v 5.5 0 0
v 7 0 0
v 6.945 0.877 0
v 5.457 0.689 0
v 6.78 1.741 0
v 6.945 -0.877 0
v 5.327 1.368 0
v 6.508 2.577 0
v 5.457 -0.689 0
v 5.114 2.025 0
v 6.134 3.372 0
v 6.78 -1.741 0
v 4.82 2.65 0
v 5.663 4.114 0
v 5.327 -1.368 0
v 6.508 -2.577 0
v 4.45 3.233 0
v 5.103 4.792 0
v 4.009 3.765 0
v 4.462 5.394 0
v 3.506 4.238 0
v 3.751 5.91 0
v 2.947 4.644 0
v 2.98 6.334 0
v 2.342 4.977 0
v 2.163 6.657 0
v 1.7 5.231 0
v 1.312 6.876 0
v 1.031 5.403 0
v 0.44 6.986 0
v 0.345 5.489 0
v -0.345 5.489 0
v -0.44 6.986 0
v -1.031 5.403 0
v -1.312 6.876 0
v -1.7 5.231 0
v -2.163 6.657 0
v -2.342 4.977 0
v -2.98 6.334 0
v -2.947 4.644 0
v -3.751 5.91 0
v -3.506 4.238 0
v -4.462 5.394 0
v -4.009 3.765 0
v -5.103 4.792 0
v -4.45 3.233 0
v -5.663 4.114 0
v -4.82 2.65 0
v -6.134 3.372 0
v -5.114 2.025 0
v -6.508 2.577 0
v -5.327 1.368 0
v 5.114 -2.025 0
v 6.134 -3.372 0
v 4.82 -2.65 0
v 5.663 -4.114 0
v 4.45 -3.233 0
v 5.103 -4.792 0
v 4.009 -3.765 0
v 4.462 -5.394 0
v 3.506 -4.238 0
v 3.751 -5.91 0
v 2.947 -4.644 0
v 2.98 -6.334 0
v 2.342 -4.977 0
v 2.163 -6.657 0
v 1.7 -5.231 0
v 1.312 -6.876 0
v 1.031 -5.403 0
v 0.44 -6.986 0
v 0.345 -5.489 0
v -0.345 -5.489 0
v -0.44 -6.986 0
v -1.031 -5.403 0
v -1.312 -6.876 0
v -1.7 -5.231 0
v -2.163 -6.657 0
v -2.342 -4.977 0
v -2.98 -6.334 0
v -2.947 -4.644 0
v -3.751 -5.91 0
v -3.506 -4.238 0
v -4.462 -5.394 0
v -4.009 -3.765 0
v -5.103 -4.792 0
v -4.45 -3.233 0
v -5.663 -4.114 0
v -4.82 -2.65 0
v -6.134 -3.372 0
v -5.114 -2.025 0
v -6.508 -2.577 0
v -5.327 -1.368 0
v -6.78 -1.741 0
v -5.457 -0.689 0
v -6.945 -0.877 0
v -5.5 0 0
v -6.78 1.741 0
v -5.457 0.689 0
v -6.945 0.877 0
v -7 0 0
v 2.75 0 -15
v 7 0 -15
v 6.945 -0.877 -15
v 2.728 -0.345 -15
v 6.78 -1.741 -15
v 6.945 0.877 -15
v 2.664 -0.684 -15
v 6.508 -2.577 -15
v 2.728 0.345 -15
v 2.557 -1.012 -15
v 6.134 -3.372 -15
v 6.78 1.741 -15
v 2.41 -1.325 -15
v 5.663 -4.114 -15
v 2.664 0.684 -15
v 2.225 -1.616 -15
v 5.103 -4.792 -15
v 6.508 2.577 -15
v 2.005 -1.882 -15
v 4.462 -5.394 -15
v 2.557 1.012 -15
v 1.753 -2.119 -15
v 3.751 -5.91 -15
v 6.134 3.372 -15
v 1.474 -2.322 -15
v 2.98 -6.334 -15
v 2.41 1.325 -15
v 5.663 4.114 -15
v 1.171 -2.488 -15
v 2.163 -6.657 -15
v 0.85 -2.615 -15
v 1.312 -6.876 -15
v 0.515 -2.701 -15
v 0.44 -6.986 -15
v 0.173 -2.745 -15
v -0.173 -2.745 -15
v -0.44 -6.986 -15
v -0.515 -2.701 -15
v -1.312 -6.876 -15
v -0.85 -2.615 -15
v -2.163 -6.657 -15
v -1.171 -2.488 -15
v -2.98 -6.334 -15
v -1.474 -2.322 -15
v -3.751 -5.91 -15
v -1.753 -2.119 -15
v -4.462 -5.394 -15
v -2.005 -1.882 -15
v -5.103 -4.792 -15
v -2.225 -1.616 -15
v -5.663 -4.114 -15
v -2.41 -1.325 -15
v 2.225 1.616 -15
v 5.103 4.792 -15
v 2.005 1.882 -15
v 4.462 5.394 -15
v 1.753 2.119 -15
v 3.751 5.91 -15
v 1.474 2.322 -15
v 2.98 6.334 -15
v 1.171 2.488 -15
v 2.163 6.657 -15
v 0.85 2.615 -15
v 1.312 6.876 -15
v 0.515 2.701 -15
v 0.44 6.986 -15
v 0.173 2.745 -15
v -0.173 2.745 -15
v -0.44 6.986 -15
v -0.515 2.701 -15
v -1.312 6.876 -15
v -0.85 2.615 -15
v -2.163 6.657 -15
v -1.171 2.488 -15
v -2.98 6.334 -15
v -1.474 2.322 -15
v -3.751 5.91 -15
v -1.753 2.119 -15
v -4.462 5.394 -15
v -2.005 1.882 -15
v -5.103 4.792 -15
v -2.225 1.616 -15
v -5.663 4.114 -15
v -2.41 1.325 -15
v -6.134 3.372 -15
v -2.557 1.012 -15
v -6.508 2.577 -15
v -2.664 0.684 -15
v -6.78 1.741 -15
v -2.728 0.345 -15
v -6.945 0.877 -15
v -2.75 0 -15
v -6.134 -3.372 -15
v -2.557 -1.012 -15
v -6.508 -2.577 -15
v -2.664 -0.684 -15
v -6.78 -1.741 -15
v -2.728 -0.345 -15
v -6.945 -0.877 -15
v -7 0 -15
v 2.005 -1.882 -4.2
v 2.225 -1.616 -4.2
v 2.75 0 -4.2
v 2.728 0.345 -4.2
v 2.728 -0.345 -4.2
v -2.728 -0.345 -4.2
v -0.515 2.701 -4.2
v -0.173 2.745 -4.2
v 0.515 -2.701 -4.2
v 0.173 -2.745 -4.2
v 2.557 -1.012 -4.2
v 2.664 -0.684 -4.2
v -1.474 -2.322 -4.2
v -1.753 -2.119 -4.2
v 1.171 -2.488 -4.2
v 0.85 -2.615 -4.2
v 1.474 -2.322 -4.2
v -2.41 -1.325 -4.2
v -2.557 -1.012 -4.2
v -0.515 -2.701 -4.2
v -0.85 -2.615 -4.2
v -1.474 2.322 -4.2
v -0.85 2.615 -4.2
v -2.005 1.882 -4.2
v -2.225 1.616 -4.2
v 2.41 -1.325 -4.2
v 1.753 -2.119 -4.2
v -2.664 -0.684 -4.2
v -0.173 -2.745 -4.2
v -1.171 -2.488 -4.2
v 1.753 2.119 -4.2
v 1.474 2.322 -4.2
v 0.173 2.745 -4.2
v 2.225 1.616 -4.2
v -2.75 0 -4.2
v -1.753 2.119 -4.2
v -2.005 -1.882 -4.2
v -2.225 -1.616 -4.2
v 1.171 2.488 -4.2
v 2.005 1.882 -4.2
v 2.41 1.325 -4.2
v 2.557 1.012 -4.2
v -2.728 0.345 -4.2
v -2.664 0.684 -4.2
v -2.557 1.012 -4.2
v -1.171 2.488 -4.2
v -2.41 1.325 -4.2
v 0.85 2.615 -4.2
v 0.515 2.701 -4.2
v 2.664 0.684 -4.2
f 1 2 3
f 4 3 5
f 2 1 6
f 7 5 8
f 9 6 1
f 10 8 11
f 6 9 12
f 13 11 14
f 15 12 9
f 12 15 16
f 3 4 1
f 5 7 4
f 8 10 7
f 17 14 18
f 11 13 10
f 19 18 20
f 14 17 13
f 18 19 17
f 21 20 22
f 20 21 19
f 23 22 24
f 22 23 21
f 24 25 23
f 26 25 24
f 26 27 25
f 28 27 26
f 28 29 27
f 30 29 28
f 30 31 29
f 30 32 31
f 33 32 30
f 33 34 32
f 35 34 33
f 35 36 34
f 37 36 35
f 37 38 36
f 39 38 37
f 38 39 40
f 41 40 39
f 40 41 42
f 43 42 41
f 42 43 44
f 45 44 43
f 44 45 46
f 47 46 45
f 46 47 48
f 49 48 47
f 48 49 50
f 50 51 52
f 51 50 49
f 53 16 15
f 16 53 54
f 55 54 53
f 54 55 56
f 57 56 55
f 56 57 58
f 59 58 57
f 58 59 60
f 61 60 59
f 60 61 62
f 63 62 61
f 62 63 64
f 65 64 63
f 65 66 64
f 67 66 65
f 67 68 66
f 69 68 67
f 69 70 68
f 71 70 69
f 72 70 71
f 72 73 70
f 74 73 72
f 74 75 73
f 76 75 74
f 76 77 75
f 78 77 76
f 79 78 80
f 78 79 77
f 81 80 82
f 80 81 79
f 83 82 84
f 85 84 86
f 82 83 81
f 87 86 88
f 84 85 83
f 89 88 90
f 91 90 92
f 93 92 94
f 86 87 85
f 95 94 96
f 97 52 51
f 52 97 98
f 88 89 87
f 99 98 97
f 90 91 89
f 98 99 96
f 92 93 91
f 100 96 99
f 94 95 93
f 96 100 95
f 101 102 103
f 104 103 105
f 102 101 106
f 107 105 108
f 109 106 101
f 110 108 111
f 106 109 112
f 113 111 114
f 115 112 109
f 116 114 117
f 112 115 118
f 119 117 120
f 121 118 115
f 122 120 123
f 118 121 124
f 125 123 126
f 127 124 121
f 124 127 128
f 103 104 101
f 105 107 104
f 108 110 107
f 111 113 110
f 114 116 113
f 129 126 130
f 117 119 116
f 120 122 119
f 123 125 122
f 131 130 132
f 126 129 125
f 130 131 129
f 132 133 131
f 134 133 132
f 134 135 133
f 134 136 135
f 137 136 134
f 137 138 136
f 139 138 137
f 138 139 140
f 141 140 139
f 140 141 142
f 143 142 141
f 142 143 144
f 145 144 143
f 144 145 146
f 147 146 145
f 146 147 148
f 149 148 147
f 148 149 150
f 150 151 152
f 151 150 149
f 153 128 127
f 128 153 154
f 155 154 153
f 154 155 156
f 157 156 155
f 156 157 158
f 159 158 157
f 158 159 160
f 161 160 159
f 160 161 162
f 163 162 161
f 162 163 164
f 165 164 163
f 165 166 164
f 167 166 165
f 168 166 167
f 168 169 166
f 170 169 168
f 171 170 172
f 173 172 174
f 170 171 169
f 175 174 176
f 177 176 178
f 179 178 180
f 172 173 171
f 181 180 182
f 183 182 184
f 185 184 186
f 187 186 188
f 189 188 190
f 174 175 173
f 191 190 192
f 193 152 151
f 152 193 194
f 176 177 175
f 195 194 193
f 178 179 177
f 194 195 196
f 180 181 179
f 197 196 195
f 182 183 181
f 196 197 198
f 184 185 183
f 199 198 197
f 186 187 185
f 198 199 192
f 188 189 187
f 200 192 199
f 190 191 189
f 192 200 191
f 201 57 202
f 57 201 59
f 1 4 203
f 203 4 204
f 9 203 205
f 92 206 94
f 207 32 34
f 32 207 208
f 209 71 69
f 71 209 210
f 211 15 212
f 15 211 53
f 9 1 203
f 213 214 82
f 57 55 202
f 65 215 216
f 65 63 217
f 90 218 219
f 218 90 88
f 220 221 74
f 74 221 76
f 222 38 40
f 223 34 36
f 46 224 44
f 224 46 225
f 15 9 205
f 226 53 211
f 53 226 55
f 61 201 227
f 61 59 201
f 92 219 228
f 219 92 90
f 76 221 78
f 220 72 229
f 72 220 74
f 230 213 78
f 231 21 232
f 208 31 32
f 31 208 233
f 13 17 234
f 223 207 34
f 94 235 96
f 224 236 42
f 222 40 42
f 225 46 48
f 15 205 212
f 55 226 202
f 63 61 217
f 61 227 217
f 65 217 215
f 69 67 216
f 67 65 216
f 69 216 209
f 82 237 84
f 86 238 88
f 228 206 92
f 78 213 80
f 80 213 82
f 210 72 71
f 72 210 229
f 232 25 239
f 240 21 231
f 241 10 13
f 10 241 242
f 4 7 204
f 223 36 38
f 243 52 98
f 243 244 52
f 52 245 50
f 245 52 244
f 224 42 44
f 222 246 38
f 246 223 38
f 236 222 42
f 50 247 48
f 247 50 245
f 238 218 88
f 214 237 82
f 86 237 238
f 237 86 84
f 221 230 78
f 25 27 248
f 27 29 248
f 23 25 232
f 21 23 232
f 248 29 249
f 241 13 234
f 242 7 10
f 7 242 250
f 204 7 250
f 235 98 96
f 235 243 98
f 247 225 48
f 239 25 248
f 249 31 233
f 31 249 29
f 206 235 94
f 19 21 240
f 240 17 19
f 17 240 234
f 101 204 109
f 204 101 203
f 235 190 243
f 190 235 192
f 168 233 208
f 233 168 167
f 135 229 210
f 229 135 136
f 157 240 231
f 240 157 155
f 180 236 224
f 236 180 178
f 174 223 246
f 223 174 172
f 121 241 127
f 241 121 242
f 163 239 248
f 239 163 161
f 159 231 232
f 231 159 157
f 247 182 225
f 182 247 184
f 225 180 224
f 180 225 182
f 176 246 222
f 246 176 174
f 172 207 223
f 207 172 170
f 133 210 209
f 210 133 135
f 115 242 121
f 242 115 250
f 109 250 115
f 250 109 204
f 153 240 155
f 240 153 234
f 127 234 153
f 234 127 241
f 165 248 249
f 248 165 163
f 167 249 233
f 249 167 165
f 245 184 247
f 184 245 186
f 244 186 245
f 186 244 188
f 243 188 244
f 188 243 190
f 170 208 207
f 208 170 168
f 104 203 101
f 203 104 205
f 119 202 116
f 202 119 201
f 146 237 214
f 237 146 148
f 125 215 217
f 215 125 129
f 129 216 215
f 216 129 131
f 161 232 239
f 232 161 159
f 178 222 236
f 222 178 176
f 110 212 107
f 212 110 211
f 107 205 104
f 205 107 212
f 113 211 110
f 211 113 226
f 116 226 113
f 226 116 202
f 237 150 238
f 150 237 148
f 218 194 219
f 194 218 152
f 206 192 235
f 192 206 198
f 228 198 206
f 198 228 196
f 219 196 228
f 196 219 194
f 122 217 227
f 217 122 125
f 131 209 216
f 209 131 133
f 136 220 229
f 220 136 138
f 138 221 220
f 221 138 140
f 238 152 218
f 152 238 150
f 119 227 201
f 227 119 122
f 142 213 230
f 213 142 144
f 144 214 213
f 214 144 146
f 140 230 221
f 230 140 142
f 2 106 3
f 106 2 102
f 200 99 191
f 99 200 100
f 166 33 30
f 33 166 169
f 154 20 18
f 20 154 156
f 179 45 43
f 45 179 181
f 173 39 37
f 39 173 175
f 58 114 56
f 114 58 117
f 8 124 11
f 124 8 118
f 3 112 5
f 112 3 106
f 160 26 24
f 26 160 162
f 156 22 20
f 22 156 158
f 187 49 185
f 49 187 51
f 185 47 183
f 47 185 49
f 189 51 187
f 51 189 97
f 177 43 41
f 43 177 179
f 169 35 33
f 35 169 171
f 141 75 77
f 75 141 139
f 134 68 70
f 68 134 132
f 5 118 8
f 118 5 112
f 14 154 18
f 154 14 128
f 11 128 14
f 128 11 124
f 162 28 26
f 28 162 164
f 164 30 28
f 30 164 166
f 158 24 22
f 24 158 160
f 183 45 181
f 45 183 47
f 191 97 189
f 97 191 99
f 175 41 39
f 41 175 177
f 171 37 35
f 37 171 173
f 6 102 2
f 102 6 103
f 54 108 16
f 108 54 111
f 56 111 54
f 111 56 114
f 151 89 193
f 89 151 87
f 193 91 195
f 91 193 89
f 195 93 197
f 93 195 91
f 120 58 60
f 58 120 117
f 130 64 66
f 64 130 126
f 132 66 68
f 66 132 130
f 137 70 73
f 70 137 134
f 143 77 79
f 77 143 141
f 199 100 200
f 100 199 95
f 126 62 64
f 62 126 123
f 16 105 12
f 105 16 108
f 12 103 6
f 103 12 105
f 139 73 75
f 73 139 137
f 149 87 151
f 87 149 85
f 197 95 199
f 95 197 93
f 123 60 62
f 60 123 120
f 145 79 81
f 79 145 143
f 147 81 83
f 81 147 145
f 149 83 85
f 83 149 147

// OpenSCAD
$fn = 50;


difference() {
	union() {
		translate(v = [0, 0, -15.0000000000]) {
			cylinder(h = 15, r = 7.0000000000);
		}
		cylinder(h = 0, r = 17.0000000000);
	}
	union() {
		translate(v = [0, 0, 0]) {
			rotate(a = [0, 0, 0]) {
				difference() {
					union() {
						#translate(v = [0, 0, -15.0000000000]) {
							cylinder(h = 15, r = 2.2500000000);
						}
						#translate(v = [0, 0, -4.2000000000]) {
							cylinder(h = 4.2000000000, r1 = 2.7500000000, r2 = 5.5000000000);
						}
						#translate(v = [0, 0, -15.0000000000]) {
							cylinder(h = 15, r = 2.7500000000);
						}
						#translate(v = [0, 0, -15.0000000000]) {
							cylinder(h = 15, r = 2.2500000000);
						}
					}
					union();
				}
			}
		}
	}
}
